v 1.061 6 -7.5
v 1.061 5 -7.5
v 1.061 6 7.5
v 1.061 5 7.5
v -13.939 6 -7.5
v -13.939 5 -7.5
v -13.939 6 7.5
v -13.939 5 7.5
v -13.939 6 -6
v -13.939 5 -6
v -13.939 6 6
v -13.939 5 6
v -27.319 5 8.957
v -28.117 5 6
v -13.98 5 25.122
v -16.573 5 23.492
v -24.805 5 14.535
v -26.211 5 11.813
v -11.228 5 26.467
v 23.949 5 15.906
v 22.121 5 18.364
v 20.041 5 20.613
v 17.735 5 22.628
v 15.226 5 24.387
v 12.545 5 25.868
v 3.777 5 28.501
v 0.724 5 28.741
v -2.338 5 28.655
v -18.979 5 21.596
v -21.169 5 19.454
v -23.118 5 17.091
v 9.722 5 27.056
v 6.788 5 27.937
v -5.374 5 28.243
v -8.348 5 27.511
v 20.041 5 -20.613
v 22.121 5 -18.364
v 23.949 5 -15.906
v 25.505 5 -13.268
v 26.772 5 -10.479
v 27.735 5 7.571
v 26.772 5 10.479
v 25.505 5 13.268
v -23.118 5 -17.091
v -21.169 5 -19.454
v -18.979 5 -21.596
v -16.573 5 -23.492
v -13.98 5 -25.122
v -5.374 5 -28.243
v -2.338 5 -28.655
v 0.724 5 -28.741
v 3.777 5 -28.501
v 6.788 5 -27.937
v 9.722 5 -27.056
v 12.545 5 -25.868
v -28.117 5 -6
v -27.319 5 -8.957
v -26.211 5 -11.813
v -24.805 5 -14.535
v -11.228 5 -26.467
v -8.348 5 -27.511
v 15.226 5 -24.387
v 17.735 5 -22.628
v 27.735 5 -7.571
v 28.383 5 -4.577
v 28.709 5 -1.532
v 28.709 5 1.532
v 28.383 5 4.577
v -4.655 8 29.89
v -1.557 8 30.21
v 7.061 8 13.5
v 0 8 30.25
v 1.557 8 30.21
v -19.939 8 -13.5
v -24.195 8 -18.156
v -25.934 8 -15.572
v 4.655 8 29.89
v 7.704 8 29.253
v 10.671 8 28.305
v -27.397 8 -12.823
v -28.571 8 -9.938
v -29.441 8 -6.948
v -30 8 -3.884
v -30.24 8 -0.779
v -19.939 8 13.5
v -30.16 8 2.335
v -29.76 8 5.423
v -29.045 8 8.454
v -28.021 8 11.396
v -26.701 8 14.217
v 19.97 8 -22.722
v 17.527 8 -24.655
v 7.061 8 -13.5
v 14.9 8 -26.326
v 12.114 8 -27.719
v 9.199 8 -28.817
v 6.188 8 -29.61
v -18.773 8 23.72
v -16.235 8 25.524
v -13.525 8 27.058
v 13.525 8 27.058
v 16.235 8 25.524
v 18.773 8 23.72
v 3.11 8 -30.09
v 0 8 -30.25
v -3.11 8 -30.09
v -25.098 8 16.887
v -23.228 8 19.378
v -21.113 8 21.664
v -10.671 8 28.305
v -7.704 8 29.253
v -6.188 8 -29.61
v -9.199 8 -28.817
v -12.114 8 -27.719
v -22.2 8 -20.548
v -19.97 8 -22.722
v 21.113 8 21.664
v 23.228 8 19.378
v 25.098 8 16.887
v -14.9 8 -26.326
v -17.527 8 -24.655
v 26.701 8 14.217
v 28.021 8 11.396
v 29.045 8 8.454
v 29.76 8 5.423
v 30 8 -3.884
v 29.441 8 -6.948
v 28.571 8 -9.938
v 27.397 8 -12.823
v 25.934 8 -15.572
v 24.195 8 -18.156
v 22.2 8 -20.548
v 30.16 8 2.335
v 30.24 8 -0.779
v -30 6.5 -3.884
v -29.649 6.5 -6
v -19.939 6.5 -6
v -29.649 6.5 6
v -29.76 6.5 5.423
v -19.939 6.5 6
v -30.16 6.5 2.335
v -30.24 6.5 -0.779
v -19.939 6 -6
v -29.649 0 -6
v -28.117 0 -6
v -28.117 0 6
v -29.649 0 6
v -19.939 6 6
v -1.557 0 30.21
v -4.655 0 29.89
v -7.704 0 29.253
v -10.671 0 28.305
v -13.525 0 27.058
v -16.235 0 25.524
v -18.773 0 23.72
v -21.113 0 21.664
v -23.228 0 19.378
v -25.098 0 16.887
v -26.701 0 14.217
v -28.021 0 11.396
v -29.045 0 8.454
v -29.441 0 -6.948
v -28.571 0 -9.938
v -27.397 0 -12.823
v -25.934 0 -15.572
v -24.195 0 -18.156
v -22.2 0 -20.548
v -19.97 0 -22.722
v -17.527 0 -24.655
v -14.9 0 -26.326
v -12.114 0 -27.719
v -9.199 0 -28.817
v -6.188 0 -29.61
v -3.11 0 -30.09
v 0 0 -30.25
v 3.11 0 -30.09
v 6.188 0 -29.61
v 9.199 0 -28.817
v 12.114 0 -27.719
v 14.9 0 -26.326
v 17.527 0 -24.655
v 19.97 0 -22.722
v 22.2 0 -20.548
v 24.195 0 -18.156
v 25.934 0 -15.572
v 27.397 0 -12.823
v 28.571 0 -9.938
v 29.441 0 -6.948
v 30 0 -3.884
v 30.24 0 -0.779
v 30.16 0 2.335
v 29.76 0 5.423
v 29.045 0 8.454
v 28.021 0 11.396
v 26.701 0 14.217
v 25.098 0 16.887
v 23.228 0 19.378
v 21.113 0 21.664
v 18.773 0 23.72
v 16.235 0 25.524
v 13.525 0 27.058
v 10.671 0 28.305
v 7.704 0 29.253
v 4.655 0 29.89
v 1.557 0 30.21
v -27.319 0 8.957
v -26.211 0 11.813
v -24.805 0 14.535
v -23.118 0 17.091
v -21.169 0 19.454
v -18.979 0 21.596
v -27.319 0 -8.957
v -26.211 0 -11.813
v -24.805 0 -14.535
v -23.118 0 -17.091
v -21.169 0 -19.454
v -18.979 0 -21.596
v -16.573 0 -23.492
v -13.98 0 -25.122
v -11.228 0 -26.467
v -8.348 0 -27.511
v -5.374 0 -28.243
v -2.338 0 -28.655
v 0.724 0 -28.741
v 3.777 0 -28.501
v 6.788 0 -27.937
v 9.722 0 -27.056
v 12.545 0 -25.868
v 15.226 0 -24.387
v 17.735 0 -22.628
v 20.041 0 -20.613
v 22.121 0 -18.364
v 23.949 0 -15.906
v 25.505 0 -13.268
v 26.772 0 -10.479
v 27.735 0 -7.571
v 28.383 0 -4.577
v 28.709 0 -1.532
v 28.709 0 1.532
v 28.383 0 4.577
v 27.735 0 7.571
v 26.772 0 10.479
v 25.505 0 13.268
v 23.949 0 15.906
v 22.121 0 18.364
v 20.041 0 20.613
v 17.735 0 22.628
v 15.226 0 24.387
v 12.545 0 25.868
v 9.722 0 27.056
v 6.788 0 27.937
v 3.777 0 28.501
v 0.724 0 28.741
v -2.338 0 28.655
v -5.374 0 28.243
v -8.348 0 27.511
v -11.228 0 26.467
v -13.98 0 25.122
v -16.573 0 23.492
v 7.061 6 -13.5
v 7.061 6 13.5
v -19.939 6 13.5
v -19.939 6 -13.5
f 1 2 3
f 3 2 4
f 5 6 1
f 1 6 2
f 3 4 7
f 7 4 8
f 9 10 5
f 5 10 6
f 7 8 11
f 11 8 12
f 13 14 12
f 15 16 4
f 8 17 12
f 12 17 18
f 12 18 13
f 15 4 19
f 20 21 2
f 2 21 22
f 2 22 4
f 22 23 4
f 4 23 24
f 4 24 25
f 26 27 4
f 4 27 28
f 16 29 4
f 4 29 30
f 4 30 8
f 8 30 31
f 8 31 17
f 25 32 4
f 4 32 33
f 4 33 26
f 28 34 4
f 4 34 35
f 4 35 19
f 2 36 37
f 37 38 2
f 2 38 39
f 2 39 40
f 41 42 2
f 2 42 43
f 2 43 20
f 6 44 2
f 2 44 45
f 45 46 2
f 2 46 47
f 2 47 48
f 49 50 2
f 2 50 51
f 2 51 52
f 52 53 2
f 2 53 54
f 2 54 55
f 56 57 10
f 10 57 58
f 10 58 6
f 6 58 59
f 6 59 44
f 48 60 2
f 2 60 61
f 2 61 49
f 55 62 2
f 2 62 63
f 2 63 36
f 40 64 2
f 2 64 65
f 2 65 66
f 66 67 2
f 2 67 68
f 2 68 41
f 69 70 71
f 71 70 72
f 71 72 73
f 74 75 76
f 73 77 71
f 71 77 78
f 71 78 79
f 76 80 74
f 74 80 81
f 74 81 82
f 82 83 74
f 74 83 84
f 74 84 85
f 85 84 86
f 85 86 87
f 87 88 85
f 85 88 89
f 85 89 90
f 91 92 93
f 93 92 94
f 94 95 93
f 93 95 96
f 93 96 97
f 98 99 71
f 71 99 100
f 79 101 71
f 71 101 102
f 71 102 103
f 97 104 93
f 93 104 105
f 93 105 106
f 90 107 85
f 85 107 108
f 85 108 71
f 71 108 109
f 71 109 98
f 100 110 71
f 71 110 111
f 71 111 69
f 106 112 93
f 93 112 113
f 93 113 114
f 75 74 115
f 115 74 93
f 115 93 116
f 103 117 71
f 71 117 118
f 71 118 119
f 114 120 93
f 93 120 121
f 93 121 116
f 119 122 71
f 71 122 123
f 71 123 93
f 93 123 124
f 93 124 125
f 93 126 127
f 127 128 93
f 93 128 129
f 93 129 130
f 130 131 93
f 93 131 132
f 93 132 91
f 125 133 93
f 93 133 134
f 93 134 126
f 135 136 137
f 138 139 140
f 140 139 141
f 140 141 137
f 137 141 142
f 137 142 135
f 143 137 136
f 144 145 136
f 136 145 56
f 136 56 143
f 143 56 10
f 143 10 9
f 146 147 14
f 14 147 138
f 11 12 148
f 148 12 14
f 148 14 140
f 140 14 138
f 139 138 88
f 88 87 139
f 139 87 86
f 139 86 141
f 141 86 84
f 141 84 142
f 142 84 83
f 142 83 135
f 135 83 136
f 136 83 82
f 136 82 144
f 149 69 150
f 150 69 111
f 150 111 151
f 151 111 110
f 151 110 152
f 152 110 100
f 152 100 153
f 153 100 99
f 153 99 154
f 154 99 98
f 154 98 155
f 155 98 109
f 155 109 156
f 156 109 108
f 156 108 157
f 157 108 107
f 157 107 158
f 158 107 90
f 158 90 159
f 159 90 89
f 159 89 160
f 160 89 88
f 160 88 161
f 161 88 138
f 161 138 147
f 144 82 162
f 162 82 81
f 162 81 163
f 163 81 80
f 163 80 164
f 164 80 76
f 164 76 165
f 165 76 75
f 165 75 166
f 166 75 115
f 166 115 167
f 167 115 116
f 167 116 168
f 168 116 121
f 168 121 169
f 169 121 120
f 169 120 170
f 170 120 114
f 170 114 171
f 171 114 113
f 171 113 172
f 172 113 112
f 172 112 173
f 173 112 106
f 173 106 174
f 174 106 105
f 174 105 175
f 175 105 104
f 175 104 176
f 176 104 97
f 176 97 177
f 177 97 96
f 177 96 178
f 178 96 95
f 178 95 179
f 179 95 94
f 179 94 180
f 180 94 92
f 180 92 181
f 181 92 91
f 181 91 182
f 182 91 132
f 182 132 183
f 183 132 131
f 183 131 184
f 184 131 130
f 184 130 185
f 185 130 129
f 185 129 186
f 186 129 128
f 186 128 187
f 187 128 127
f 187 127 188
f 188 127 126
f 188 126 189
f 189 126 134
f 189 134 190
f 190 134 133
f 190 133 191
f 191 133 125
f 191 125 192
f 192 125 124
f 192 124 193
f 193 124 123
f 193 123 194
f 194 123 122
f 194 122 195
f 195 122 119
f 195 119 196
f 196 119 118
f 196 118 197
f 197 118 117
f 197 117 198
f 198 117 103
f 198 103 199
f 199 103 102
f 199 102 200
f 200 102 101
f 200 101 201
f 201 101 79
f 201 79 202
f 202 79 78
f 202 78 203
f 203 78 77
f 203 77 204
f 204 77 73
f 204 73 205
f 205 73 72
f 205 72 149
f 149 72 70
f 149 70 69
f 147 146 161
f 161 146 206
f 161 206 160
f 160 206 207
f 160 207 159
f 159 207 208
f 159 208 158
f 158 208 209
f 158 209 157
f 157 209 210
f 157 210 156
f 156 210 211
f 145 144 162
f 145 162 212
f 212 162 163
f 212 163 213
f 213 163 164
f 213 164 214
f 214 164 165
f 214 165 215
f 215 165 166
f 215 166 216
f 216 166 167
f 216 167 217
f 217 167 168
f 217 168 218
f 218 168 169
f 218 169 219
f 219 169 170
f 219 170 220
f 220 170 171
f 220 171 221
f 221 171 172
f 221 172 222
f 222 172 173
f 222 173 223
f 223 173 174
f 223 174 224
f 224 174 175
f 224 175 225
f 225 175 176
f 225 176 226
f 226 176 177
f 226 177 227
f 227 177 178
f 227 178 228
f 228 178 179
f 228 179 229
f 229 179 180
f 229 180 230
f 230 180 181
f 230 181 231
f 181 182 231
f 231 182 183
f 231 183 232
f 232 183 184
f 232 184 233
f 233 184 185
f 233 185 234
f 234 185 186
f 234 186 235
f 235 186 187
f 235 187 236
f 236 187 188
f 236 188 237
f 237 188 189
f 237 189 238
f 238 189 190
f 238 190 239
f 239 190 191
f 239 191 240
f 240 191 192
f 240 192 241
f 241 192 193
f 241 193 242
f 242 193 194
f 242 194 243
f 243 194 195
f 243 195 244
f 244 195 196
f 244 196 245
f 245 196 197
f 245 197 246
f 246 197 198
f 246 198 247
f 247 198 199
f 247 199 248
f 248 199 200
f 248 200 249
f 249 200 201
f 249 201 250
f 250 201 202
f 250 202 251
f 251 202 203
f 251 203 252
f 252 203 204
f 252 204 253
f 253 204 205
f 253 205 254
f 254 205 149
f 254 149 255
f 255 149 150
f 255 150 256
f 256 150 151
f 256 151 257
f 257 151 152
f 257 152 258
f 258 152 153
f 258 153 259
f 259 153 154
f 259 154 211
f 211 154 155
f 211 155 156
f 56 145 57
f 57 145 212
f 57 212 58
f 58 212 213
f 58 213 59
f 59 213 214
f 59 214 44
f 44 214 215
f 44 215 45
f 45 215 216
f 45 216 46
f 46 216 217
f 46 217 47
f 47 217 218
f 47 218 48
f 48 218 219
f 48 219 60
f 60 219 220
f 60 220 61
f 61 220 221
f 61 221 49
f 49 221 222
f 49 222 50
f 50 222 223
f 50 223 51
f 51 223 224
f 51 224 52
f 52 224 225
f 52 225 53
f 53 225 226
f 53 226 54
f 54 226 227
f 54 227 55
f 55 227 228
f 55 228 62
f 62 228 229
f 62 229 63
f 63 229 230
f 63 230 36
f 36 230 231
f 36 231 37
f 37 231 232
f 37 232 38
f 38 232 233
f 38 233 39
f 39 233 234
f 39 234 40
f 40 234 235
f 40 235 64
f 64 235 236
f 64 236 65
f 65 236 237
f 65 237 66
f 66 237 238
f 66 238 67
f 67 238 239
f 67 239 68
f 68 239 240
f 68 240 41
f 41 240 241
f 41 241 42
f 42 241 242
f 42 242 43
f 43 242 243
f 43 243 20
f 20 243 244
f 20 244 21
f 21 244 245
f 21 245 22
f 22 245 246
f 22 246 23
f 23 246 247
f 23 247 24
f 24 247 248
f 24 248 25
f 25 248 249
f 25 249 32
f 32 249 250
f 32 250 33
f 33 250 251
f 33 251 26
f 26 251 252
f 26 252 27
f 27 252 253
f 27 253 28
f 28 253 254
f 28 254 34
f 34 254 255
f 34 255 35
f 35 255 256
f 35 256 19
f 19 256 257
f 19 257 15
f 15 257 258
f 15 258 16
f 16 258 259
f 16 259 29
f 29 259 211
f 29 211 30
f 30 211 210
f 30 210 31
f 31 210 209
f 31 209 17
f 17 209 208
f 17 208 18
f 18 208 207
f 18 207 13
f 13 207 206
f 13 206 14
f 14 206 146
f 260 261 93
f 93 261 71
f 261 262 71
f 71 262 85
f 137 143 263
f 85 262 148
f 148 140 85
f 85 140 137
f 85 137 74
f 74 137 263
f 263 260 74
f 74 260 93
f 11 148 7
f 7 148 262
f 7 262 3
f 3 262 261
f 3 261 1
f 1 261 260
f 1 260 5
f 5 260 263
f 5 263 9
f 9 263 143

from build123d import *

# Parameters (mm, degrees)
BASE_R                     = 30.25
EXTRUSAO_BASE_DEPTH        = 8
CORTE_BASE_R               = 28.75
EXTRUSAO_CORTE_BASE_DEPTH  = 5
USB_W                      = 142.526664036
USB_H                      = 12
CORTE_USB_DEPTH            = 6.5
CORTE_PRISMA_DEPTH         = 44.521546388
CORTE_PRISMA_DEPTH_BACK    = 44.521546388
PRISMA2_W                  = 15
PRISMA2_H                  = 15
PRISMA_W                   = 27
PRISMA_H                   = 27
CORTE_ENCAIXE_PRISMA_DEPTH = 2


with BuildPart() as part:
    # base → extrusao_base (new body)
    with BuildSketch(Plane(origin=(0, 0, 0), x_dir=(1, 0, 0), z_dir=(0, 1, 0))):
        with Locations(Location((0, 0, 0), (0, 0, 270))):
            Circle(BASE_R)
    extrude(amount=EXTRUSAO_BASE_DEPTH)

    # corte_base → extrusao_corte_base (cut)
    with BuildSketch(Plane(origin=(0, 0, 0), x_dir=(1, 0, 0), z_dir=(0, 1, 0))):
        with Locations(Location((0, 0, 0), (0, 0, 270))):
            Circle(CORTE_BASE_R)
    extrude(amount=EXTRUSAO_CORTE_BASE_DEPTH, mode=Mode.SUBTRACT)

    # usb → corte_usb (cut)
    with BuildSketch(Plane(origin=(0, 0, 0), x_dir=(1, 0, 0), z_dir=(0, 1, 0))):
        with Locations((-71.263332018, 0)):
            Rectangle(USB_W, USB_H)
    extrude(amount=CORTE_USB_DEPTH, mode=Mode.SUBTRACT)

    # prisma2 (on Top Plane) → corte_prisma (cut, two sides: drawn at the far end of the back side and taken through both)
    with BuildSketch(Plane(origin=(0, 0, 0), x_dir=(1, 0, 0), z_dir=(0, 1, 0)).offset(-CORTE_PRISMA_DEPTH_BACK)):
        with Locations((-6.438503074, 0)):
            Rectangle(PRISMA2_W, PRISMA2_H)
    extrude(amount=CORTE_PRISMA_DEPTH + CORTE_PRISMA_DEPTH_BACK, mode=Mode.SUBTRACT)

    # prisma → corte_encaixe_prisma (cut)
    with BuildSketch(Plane(origin=(0, 8, 0), x_dir=(1, 0, 0), z_dir=(0, 1, 0))):
        with Locations((-6.438503074, 0)):
            Rectangle(PRISMA_W, PRISMA_H)
    extrude(amount=-CORTE_ENCAIXE_PRISMA_DEPTH, mode=Mode.SUBTRACT)


solid = part.part
